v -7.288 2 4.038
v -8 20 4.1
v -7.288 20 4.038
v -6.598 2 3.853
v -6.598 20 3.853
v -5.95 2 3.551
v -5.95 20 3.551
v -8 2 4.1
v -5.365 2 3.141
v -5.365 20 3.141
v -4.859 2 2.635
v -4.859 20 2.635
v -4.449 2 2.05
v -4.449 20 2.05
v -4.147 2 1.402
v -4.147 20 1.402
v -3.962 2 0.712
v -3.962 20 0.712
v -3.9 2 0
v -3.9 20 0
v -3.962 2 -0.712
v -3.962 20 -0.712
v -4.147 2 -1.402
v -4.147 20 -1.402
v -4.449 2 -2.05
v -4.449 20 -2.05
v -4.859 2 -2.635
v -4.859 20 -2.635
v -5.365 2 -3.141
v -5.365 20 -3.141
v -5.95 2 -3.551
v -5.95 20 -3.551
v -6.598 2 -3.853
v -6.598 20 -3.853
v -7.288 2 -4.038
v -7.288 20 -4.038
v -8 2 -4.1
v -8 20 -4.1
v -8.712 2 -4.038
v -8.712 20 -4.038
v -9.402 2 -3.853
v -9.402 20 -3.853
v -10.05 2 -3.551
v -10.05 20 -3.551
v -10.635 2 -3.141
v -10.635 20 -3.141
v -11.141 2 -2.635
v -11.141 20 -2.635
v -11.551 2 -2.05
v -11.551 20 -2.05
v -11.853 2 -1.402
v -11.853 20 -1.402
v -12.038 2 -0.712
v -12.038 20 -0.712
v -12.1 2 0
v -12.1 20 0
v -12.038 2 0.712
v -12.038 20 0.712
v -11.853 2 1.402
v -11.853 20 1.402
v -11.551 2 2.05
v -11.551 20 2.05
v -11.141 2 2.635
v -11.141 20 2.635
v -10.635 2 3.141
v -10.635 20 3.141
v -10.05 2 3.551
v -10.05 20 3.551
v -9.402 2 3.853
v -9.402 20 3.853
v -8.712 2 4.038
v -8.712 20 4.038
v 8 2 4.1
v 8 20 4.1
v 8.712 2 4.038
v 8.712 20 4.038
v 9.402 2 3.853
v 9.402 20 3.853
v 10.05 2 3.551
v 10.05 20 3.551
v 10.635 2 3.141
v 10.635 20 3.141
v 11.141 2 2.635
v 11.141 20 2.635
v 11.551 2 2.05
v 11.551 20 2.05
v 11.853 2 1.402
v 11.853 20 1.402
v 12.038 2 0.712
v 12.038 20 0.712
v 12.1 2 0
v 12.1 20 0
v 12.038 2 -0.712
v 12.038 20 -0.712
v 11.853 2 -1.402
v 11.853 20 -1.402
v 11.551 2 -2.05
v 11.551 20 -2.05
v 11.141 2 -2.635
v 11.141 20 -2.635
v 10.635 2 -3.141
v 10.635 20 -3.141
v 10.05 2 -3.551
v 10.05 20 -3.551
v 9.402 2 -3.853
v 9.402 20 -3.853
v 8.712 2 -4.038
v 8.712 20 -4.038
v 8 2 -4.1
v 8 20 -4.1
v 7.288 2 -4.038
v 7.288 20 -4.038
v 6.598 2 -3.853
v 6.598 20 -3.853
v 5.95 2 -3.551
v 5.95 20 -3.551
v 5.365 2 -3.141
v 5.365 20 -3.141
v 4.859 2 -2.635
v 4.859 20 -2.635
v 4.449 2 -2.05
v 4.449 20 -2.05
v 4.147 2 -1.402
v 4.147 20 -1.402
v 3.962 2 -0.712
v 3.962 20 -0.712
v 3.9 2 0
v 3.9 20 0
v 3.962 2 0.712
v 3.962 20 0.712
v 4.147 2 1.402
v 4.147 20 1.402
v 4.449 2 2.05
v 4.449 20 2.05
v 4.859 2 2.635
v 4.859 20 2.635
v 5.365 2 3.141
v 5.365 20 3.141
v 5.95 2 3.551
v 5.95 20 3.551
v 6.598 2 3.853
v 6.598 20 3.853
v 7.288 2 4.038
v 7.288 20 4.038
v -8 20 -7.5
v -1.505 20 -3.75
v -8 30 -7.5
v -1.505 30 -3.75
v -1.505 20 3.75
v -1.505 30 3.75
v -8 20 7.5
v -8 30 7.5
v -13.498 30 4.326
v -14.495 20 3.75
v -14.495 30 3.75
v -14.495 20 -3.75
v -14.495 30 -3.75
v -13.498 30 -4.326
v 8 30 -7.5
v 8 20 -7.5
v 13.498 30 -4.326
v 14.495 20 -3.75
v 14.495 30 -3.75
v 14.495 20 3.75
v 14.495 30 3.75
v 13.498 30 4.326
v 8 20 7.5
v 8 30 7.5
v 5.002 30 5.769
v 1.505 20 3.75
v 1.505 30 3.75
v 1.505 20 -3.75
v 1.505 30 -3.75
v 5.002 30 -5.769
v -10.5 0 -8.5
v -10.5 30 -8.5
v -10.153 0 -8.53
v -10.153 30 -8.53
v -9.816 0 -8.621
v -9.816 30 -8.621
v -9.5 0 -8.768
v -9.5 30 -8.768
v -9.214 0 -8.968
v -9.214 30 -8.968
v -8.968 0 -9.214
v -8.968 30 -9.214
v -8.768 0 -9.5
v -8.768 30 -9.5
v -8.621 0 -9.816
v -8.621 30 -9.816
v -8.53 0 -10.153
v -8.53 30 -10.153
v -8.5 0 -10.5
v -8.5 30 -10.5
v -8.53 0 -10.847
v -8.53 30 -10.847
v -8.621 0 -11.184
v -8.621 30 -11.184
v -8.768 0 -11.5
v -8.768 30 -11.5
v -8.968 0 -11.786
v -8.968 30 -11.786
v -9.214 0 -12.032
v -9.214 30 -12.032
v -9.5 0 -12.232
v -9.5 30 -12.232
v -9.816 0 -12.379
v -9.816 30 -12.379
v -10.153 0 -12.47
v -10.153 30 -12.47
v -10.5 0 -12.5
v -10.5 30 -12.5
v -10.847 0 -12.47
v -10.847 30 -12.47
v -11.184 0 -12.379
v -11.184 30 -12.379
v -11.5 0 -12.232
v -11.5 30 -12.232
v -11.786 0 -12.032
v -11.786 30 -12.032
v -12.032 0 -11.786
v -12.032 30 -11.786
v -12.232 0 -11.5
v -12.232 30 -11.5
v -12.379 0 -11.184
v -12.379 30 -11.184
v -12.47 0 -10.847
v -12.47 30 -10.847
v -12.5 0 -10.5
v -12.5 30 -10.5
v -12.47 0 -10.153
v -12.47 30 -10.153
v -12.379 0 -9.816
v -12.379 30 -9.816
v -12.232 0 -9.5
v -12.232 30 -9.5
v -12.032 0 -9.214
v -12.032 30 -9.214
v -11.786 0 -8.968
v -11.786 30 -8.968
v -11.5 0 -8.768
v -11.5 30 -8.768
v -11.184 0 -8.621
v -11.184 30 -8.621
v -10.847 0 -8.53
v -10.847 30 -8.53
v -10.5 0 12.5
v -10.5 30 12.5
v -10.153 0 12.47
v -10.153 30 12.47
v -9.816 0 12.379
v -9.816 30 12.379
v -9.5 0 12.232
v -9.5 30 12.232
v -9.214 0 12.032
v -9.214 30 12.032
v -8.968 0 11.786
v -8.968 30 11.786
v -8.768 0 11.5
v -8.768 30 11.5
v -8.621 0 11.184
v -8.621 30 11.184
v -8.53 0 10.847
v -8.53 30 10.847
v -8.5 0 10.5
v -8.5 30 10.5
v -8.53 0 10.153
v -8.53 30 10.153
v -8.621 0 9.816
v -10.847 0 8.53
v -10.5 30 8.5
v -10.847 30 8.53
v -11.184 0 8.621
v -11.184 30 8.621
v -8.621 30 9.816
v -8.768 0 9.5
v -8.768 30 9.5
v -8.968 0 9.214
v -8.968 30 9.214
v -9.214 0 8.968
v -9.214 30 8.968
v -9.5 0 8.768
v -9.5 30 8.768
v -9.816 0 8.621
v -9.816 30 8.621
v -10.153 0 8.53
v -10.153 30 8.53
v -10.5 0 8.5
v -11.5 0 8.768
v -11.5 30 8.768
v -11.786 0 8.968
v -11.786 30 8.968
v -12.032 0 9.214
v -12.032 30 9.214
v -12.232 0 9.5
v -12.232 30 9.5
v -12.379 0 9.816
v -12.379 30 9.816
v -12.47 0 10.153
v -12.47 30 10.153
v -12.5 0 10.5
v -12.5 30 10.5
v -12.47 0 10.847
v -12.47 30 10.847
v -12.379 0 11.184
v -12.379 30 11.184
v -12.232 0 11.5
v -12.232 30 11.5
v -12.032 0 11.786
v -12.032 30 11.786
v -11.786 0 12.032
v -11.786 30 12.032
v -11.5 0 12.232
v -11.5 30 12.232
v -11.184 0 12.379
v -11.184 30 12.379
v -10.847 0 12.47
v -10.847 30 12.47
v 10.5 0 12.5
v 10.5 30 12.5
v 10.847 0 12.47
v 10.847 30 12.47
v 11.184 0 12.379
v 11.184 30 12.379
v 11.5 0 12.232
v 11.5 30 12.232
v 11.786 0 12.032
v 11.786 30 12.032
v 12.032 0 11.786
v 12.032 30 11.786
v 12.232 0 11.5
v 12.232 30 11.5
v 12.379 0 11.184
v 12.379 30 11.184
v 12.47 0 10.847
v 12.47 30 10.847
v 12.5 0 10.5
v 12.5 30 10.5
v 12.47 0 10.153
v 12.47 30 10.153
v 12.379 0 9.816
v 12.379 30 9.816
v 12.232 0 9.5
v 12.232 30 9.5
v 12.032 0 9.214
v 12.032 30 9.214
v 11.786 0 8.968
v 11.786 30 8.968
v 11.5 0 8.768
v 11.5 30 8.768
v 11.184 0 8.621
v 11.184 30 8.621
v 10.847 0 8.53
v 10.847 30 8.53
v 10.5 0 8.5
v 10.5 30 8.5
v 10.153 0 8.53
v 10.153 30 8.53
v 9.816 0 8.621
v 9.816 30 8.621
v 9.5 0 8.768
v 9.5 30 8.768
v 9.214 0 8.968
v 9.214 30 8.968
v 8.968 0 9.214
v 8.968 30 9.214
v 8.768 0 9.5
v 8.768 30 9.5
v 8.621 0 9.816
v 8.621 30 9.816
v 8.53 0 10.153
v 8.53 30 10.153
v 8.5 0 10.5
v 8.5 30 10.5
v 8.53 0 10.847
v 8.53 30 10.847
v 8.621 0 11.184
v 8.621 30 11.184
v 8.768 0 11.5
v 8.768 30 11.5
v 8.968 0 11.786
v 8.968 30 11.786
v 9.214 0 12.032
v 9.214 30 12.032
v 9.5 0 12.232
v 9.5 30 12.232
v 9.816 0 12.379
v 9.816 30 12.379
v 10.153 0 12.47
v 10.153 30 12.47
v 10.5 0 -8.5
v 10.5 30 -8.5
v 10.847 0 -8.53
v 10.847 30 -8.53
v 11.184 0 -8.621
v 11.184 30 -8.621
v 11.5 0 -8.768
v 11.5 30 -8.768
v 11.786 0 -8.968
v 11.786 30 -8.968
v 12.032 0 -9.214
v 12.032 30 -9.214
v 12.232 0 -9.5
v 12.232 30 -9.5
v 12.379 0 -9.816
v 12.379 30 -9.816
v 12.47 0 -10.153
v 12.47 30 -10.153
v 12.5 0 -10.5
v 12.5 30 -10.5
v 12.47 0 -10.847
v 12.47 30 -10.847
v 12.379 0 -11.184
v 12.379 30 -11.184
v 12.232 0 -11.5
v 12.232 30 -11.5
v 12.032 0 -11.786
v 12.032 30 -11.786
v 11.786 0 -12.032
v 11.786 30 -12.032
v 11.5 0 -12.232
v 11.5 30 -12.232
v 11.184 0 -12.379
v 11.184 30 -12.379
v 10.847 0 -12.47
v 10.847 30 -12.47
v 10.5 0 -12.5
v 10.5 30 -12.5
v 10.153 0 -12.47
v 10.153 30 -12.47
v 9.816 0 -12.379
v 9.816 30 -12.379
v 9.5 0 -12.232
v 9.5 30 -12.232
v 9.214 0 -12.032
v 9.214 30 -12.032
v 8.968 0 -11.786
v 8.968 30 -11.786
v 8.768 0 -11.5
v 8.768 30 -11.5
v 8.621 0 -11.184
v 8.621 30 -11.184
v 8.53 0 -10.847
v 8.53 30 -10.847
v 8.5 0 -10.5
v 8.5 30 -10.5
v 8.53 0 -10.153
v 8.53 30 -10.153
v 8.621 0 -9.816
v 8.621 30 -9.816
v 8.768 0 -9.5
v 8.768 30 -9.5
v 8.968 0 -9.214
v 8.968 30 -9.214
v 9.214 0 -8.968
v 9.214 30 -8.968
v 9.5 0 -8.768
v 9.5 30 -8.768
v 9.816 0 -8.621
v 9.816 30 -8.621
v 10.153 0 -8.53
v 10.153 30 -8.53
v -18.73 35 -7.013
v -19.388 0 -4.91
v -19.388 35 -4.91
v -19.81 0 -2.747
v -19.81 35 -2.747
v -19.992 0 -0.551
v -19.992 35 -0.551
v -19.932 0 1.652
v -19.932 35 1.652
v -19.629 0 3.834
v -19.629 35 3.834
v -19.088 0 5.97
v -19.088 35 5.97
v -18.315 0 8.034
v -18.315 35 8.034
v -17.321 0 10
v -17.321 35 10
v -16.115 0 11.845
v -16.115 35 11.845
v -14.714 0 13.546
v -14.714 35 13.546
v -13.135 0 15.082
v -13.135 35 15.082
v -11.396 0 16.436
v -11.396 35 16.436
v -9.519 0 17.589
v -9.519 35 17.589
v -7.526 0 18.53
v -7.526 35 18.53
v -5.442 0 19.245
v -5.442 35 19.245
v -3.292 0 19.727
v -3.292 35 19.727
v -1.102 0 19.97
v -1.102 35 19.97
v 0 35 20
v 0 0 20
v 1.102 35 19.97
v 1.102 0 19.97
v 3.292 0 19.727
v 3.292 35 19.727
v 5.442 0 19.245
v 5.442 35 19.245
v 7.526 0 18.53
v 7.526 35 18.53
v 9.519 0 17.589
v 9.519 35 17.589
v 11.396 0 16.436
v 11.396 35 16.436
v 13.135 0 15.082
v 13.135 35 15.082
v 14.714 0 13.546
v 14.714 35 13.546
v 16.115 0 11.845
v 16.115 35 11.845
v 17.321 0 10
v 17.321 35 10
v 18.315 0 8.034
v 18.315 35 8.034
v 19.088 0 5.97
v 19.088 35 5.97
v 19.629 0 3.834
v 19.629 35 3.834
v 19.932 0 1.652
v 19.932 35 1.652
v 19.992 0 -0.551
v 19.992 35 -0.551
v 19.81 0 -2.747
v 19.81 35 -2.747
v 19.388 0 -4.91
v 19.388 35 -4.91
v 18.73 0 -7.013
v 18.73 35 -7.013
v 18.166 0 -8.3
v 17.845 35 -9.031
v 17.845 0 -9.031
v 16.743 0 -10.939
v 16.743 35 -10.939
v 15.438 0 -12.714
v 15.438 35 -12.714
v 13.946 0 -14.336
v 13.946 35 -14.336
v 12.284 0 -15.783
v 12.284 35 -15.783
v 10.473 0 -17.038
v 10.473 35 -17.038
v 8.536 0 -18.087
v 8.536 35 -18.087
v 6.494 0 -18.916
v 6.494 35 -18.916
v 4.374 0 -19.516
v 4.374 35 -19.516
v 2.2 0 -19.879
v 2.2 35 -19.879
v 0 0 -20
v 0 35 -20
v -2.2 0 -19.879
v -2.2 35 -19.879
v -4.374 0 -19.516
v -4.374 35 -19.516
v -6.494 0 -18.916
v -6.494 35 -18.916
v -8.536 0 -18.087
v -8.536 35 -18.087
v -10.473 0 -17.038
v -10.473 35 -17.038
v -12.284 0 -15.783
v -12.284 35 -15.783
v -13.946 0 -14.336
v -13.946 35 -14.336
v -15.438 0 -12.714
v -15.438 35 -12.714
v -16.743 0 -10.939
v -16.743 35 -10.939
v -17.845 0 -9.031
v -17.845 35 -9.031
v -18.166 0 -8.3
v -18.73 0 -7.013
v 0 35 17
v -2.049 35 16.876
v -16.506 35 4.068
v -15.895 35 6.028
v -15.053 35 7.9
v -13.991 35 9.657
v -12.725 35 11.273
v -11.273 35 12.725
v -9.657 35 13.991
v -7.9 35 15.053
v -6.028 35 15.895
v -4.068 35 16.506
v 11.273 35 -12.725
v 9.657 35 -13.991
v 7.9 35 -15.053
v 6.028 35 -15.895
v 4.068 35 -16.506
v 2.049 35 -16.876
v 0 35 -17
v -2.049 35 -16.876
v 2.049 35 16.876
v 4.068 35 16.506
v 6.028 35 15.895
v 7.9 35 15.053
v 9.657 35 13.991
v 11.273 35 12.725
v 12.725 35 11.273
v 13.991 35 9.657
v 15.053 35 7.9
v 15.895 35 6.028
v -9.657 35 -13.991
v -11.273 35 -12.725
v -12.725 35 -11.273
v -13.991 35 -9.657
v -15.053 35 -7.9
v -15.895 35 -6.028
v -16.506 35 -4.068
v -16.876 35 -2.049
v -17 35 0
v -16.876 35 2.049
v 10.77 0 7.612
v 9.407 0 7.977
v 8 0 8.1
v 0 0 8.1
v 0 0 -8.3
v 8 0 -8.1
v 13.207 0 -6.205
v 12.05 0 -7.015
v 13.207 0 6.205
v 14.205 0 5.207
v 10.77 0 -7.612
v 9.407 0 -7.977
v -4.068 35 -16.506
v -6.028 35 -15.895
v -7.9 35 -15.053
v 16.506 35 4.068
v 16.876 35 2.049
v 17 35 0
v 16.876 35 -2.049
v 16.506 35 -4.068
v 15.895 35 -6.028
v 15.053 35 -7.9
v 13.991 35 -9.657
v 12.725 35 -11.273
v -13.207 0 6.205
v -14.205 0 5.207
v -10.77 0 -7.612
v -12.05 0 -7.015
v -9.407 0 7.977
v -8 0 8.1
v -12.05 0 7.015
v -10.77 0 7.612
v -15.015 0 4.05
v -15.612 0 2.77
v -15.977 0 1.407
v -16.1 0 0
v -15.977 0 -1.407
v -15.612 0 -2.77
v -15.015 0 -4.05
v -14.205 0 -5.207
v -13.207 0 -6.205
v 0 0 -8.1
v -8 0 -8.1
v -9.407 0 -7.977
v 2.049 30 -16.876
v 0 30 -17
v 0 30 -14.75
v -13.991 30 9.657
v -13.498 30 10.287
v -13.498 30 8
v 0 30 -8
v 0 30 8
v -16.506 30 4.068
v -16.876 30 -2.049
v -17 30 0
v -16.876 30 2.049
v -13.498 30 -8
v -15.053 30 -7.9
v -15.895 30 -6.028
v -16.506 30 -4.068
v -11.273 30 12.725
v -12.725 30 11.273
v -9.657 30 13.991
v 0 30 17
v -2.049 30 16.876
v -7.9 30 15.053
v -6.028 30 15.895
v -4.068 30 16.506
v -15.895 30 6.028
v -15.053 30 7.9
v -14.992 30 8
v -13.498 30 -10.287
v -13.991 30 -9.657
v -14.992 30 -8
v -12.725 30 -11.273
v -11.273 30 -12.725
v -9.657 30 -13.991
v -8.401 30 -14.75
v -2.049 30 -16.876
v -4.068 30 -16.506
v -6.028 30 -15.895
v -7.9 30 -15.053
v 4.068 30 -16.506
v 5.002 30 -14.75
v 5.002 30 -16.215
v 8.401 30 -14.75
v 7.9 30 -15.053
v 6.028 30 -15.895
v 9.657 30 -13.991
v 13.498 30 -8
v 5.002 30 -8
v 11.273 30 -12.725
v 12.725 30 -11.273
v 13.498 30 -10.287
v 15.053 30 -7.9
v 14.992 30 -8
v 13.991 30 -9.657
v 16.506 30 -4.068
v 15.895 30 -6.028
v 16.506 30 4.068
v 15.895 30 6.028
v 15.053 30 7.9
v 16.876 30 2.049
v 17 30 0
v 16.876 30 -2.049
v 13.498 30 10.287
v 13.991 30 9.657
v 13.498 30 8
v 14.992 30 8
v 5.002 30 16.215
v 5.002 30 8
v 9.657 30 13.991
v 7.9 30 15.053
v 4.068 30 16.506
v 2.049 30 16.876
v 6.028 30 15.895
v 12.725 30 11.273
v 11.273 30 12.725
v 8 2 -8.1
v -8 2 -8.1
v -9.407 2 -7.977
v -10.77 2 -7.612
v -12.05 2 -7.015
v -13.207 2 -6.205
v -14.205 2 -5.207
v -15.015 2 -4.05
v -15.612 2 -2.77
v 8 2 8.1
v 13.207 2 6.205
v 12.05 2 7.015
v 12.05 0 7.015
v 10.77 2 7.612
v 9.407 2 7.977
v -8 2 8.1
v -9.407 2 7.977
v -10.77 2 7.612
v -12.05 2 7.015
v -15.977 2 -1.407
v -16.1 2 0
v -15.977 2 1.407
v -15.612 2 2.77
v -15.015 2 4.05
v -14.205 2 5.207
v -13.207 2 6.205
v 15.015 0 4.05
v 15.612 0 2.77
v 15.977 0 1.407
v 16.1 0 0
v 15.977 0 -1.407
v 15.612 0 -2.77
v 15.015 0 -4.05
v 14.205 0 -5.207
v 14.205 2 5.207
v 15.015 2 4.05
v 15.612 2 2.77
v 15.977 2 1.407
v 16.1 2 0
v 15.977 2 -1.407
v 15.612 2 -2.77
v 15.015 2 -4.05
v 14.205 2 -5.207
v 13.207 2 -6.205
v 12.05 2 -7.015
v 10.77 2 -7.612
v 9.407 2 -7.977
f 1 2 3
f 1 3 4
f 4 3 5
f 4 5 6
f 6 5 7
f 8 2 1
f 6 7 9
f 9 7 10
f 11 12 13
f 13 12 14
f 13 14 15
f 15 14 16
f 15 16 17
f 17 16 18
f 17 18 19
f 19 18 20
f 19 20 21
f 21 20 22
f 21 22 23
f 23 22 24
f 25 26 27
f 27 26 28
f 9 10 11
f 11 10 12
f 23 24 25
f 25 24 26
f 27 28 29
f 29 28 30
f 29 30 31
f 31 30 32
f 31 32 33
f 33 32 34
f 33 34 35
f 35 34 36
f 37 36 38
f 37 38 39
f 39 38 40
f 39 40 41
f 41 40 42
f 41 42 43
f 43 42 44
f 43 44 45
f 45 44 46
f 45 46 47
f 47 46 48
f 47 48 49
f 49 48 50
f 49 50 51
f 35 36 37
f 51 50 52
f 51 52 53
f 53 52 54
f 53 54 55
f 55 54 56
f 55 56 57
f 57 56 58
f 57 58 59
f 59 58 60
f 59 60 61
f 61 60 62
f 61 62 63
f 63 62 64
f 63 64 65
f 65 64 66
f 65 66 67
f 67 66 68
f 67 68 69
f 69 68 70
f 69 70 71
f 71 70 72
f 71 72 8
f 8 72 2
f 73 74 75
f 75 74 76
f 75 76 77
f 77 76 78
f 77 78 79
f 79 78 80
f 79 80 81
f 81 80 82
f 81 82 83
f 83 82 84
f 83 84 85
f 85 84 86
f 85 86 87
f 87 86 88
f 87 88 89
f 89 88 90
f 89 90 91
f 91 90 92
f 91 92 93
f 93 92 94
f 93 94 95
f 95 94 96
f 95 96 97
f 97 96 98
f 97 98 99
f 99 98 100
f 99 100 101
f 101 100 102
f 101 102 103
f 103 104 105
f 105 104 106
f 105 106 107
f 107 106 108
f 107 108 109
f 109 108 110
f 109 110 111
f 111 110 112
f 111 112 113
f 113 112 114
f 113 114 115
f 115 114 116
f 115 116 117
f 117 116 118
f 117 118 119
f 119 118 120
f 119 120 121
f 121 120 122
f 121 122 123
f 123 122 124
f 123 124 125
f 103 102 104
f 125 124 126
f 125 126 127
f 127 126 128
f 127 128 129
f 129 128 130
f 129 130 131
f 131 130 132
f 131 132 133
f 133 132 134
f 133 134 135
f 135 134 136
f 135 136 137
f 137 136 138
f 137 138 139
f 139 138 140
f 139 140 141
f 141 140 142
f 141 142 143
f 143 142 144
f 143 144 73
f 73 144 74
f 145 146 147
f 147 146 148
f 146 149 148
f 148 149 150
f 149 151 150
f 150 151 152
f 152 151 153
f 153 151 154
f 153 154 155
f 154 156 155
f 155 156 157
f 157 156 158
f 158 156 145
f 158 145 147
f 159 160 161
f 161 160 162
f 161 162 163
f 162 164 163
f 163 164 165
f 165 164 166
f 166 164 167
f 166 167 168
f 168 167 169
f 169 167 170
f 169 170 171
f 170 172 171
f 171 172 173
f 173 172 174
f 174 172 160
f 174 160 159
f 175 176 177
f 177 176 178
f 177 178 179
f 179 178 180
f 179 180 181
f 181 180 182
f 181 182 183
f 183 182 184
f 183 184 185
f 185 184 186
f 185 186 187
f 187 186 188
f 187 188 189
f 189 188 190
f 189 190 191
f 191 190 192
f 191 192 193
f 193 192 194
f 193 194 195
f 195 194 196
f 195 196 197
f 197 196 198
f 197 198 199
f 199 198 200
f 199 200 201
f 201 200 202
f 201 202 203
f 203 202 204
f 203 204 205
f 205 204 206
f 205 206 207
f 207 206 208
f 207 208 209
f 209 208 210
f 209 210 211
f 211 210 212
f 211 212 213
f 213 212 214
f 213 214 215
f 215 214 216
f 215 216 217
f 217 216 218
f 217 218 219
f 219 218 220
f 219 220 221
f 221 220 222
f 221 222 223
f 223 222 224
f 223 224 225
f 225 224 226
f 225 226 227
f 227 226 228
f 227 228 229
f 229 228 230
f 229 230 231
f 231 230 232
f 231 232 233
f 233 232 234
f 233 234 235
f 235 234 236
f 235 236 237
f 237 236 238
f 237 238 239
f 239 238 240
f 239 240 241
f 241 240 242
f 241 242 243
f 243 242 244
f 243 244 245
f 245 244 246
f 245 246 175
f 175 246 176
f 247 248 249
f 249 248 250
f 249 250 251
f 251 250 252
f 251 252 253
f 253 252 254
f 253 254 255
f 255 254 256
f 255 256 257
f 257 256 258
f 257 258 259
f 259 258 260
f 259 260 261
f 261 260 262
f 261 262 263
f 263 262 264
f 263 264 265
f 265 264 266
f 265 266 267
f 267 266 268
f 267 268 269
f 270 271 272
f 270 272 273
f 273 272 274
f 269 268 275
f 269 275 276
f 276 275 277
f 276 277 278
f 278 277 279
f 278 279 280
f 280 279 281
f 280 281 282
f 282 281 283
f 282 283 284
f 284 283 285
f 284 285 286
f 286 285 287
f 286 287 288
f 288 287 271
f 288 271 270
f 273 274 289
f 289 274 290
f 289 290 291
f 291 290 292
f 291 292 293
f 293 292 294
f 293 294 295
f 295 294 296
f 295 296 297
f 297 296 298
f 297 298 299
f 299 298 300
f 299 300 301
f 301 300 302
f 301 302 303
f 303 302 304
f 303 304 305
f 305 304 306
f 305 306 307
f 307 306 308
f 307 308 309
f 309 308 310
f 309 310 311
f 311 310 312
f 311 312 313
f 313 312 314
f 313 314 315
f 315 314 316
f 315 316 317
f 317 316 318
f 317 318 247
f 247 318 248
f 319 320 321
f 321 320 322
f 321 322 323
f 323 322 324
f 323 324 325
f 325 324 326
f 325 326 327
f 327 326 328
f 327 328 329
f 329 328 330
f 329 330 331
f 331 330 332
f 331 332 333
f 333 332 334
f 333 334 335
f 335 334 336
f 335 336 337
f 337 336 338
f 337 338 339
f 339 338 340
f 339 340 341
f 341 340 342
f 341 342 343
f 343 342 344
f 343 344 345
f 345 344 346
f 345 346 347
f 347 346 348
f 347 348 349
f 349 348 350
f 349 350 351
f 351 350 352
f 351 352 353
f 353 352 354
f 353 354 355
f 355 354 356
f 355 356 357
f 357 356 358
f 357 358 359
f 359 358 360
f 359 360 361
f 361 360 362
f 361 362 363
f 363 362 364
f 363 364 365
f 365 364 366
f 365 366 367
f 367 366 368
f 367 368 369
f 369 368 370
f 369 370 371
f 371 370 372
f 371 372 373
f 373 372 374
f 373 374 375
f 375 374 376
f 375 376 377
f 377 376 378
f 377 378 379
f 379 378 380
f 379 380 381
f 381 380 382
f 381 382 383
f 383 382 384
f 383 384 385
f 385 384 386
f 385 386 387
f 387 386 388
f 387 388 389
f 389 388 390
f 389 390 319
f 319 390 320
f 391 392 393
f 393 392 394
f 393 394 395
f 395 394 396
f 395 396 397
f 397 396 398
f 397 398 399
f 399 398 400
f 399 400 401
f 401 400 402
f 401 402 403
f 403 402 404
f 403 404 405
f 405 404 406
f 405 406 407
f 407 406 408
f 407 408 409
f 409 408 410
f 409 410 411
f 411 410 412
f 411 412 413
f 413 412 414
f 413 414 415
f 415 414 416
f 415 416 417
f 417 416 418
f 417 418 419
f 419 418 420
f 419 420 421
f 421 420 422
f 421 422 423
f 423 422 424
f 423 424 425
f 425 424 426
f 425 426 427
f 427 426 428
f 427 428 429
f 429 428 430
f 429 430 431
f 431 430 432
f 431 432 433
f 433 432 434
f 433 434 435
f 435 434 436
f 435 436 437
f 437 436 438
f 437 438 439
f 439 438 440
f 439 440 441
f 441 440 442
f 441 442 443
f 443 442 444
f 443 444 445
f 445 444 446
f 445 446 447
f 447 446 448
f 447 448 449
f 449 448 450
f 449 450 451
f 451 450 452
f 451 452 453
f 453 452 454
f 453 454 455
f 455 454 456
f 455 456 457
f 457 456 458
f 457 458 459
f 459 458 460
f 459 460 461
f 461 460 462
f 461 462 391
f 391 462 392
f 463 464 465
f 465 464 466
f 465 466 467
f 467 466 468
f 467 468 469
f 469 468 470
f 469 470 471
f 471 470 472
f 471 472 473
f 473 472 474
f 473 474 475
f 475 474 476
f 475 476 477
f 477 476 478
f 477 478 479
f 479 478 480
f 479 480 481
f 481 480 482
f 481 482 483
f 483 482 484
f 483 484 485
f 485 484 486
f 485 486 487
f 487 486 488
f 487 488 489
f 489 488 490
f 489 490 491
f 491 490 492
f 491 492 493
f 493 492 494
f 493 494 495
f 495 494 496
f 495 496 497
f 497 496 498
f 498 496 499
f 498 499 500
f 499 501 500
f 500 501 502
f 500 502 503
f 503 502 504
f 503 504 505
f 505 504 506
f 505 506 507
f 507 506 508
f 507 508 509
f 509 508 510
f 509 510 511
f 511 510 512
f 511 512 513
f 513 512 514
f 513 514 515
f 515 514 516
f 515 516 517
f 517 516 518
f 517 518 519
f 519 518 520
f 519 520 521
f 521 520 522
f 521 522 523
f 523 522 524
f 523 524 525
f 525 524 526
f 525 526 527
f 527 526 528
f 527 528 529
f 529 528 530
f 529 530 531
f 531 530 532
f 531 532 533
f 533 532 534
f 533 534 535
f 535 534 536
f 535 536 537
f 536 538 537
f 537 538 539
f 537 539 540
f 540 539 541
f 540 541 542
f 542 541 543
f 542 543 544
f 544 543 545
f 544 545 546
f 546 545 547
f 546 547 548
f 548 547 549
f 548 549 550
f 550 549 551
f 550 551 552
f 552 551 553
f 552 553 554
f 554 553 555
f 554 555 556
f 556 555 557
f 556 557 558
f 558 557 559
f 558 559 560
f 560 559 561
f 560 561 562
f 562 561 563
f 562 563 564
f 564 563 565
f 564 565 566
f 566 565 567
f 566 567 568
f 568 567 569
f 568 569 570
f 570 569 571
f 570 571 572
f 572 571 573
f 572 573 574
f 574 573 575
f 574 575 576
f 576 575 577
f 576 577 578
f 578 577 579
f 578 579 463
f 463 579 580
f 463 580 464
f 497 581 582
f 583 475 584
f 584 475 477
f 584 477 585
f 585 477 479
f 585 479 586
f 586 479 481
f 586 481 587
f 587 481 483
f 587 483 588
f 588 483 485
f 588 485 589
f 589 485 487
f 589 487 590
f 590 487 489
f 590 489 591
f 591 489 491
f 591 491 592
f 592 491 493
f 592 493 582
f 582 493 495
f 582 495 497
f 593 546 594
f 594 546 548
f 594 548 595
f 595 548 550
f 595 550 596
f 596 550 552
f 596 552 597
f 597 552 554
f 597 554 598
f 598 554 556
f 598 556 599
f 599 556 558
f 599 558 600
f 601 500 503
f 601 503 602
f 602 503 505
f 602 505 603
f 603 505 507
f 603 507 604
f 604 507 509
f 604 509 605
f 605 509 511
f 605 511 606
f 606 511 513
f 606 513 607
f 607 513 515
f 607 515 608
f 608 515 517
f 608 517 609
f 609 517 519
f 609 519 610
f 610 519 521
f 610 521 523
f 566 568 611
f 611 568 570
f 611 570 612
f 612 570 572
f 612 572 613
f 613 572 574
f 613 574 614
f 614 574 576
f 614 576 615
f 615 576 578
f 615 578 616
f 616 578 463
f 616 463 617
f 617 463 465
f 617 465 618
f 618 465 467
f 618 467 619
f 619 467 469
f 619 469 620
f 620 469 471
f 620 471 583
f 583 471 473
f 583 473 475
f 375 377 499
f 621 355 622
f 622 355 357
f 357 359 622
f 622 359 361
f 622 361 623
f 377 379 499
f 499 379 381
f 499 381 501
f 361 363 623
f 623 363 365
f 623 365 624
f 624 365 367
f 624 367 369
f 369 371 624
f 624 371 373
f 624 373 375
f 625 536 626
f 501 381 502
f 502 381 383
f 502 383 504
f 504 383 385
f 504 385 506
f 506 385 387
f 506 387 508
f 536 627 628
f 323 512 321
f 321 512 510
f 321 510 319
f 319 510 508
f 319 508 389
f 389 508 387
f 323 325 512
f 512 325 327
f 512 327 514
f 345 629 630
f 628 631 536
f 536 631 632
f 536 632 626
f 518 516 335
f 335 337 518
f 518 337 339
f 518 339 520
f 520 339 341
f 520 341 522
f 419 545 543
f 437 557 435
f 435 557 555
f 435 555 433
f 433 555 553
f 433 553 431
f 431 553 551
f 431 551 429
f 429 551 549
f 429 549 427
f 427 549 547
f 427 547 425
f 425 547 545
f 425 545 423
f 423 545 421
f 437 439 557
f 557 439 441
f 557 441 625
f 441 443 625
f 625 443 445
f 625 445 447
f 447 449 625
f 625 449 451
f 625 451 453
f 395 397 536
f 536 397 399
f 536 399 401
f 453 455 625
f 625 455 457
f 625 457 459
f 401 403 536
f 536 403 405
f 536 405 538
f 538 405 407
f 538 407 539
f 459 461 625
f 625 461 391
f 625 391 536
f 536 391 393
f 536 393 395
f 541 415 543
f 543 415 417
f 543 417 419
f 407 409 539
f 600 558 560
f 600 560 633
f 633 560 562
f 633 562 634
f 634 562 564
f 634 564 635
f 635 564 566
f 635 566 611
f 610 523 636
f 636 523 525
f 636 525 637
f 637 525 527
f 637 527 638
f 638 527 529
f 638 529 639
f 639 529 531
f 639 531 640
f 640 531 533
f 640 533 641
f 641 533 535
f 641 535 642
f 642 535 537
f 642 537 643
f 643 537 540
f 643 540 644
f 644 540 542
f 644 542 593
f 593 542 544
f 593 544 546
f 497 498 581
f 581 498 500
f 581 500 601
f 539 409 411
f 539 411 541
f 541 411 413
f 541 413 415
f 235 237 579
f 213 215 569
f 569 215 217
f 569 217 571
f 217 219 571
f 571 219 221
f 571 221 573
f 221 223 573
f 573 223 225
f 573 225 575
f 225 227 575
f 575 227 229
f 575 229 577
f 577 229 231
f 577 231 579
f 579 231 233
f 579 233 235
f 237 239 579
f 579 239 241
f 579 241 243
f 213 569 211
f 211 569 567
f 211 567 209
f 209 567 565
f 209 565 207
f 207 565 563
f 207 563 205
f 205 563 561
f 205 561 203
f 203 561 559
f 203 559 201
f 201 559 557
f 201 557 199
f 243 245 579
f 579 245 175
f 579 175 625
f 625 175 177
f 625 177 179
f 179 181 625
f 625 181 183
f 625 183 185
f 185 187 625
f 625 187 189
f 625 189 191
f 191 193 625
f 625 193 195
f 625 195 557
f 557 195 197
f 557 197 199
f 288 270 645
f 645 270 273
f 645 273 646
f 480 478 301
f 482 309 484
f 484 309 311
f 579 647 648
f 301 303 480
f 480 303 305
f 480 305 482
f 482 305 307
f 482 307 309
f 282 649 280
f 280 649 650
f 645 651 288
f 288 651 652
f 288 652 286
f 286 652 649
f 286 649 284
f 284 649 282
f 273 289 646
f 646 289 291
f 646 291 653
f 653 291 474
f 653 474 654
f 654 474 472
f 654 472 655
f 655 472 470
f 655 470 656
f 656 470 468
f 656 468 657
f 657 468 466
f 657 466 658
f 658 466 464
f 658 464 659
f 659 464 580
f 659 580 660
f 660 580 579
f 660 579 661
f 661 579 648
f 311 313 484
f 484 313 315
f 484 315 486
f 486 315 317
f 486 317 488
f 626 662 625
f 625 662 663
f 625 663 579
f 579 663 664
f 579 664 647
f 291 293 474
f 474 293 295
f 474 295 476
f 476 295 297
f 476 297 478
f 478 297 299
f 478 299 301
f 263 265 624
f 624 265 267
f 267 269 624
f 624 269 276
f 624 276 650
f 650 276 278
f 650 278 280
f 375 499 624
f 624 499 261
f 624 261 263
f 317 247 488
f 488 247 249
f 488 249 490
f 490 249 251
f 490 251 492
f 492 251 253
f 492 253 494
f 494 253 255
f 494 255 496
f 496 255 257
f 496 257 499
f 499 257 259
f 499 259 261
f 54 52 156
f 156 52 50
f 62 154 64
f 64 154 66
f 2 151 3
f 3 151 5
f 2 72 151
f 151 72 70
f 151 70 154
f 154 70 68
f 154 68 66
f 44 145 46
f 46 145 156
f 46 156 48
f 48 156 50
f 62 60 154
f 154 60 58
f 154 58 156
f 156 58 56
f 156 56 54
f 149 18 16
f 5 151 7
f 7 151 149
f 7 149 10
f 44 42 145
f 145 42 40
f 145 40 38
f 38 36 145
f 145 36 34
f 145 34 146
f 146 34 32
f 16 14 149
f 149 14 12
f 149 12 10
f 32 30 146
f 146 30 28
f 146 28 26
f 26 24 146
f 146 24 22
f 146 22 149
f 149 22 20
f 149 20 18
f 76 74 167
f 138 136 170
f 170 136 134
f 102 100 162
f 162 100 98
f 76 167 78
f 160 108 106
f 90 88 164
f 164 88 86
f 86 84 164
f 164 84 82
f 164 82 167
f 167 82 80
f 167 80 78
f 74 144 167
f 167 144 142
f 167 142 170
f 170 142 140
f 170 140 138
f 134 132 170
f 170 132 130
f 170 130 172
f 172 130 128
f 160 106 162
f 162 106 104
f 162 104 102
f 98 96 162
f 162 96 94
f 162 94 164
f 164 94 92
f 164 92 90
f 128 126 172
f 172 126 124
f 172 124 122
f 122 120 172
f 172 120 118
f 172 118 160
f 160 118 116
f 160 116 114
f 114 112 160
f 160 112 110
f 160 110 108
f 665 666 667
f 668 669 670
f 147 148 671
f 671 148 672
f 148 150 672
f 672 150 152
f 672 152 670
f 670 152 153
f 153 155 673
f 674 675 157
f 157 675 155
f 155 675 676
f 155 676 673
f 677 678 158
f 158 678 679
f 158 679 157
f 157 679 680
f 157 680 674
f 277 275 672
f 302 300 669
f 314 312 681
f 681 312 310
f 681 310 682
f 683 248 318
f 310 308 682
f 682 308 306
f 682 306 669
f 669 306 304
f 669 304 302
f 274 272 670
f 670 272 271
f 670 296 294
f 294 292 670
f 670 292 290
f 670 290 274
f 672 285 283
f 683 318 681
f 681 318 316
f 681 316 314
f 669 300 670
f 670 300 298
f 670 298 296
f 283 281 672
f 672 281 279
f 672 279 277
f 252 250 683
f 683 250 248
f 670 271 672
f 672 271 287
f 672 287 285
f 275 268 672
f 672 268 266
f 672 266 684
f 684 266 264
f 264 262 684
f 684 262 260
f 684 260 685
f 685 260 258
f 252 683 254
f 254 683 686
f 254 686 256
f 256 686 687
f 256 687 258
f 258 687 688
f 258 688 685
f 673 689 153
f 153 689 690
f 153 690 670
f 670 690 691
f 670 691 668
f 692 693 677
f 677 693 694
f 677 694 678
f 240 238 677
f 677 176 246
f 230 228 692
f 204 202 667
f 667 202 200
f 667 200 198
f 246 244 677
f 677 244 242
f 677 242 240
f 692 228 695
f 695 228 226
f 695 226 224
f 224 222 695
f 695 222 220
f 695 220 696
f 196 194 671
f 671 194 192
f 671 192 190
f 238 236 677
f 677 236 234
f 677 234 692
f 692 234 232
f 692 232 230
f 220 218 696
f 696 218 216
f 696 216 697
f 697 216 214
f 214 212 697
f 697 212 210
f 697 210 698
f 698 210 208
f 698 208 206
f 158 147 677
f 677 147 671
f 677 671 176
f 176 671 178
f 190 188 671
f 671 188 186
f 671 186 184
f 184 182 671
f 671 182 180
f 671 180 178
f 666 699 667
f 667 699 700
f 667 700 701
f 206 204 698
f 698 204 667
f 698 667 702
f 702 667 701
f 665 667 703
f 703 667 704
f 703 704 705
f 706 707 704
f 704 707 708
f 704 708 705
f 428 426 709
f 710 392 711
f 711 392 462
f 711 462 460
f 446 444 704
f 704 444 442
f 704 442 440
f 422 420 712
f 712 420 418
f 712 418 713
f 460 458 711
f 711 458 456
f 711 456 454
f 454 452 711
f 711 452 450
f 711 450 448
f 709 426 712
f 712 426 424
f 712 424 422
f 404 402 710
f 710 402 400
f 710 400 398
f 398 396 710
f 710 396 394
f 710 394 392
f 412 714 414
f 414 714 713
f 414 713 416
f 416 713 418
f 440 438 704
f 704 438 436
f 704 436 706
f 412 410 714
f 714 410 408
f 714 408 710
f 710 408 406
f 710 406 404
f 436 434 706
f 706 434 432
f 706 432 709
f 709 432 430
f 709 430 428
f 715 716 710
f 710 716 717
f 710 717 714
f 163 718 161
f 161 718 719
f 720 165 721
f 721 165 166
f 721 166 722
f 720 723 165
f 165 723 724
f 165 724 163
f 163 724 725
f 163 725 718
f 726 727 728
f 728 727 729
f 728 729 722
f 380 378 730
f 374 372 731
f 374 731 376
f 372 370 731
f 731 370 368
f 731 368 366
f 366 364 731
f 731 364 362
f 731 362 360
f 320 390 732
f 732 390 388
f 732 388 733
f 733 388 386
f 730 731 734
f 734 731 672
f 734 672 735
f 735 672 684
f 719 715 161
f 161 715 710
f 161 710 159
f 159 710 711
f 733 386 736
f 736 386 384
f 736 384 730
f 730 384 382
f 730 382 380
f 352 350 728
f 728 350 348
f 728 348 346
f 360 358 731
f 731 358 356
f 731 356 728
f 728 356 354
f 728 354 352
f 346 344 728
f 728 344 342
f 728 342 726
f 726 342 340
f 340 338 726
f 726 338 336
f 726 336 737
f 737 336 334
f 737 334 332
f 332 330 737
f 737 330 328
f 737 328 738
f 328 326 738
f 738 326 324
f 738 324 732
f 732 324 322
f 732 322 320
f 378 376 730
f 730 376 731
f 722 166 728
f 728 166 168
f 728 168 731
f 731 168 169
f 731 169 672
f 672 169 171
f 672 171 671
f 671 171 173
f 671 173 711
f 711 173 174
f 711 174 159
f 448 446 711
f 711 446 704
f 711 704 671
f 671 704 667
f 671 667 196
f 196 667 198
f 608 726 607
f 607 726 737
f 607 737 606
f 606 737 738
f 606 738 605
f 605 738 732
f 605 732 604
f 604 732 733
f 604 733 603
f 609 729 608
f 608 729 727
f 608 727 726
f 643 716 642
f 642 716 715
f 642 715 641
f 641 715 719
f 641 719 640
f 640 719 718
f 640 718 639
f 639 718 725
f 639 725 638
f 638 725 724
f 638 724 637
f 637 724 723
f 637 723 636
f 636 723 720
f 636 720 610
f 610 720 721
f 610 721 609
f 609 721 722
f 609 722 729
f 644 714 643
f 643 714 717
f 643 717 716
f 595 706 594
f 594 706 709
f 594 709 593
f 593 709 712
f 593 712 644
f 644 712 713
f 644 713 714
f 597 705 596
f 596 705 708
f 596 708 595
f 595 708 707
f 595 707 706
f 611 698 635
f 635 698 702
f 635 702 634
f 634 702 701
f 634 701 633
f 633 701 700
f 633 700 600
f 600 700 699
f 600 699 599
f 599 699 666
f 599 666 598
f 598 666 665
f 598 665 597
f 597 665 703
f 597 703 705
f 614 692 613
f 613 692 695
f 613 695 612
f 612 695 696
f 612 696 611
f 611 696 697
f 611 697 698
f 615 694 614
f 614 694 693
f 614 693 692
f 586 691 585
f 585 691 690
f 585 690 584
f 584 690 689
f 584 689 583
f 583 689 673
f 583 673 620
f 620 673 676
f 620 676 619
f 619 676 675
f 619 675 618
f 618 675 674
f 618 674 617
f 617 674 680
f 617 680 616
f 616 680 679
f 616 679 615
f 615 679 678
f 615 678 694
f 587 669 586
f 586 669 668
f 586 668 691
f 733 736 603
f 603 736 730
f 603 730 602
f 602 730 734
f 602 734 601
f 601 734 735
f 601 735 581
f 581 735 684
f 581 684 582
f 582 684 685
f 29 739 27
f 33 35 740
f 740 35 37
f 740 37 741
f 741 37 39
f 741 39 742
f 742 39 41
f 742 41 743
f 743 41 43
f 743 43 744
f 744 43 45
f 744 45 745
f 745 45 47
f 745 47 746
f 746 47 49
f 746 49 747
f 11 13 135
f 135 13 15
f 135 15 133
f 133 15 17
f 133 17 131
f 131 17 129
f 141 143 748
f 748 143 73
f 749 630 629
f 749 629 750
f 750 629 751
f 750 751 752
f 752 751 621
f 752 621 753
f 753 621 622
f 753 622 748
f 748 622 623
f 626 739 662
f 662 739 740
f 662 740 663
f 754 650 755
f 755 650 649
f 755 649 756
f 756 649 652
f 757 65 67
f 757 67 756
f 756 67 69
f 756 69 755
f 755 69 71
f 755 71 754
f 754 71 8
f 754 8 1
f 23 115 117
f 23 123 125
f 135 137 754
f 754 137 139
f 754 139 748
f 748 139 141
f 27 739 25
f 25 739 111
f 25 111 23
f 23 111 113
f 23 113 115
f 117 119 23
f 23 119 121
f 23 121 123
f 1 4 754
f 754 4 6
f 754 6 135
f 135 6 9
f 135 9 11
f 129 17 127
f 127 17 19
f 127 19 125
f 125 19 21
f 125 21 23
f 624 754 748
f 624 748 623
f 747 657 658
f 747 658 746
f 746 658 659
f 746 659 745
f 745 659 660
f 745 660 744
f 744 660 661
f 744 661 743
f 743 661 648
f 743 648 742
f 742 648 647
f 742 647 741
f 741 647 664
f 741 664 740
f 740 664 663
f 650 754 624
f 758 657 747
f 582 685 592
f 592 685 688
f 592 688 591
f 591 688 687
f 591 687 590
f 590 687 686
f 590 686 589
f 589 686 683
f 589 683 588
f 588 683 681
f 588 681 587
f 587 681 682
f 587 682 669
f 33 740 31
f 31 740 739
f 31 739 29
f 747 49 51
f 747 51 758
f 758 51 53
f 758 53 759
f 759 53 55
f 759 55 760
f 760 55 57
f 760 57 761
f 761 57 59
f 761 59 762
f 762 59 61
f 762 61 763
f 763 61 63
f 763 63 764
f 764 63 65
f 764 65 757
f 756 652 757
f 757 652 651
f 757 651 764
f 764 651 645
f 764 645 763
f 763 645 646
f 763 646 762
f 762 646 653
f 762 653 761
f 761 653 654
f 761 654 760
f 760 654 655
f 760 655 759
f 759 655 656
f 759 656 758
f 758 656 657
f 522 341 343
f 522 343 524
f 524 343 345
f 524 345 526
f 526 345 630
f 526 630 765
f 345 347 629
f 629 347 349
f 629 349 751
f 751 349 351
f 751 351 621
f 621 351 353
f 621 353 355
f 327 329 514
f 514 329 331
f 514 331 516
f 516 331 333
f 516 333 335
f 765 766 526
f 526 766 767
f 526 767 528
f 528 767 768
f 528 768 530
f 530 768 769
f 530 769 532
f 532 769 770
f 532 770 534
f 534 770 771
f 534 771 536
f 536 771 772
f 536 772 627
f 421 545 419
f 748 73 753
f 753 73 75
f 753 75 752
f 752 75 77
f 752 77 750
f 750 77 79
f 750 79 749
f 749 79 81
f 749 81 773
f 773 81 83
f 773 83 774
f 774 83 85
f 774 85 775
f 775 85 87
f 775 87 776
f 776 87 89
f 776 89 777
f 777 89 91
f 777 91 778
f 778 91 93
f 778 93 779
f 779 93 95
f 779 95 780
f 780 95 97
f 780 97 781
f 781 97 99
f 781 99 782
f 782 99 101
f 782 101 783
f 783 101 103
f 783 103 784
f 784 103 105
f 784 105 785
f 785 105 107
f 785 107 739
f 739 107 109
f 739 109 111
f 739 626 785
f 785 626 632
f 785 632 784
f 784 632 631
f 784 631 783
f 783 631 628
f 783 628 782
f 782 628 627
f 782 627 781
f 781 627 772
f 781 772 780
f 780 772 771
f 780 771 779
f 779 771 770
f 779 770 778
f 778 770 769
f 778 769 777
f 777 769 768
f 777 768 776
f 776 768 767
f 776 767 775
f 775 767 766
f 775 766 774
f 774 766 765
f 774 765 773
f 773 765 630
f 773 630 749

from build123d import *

# Parameters (mm, degrees)
SKETCH1_R           = 20
BOSS_EXTRUDE1_DEPTH = 35
CUT_EXTRUDE1_DEPTH  = 15
SKETCH3_R           = 4.1
CUT_EXTRUDE2_DEPTH  = 21
SKETCH4_R           = 2
CUT_EXTRUDE3_DEPTH  = 36
SKETCH5_R           = 17
CUT_EXTRUDE4_DEPTH  = 5
CUT_EXTRUDE5_DEPTH  = 2


with BuildPart() as part:
    # Sketch1 → Boss-Extrude1 (new body)
    with BuildSketch(Plane(origin=(0, 0, 0), x_dir=(1, 0, 0), z_dir=(0, 1, 0))):
        Circle(SKETCH1_R)
    extrude(amount=BOSS_EXTRUDE1_DEPTH)

    # Sketch2 → Cut-Extrude1 (cut)
    with BuildSketch(Plane(origin=(0, 35, 0), x_dir=(1, 0, 0), z_dir=(0, 1, 0))):
        Polygon((-8, 7.5), (-14.495190528, 3.75), (-14.495190528, -3.75), (-8, -7.5), (-1.504809472, -3.75), (-1.504809472, 3.75), align=None)
        Polygon((8, 7.5), (1.504809472, 3.75), (1.504809472, -3.75), (8, -7.5), (14.495190528, -3.75), (14.495190528, 3.75), align=None)
    extrude(amount=-CUT_EXTRUDE1_DEPTH, mode=Mode.SUBTRACT)

    # Sketch3 → Cut-Extrude2 (cut, through all)
    with BuildSketch(Plane(origin=(0, 20, 0), x_dir=(1, 0, 0), z_dir=(0, 1, 0))):
        with Locations((-8, 0)):
            Circle(SKETCH3_R)
        with Locations((8, 0)):
            Circle(SKETCH3_R)
    extrude(amount=-CUT_EXTRUDE2_DEPTH, mode=Mode.SUBTRACT)

    # Sketch4 → Cut-Extrude3 (cut, through all)
    with BuildSketch(Plane(origin=(0, 35, 0), x_dir=(1, 0, 0), z_dir=(0, 1, 0))):
        with Locations((-10.5, 10.5)):
            Circle(SKETCH4_R)
        with Locations((10.5, 10.5)):
            Circle(SKETCH4_R)
        with Locations((10.5, -10.5)):
            Circle(SKETCH4_R)
        with Locations((-10.5, -10.5)):
            Circle(SKETCH4_R)
    extrude(amount=-CUT_EXTRUDE3_DEPTH, mode=Mode.SUBTRACT)

    # Sketch5 → Cut-Extrude4 (cut)
    with BuildSketch(Plane(origin=(0, 35, 0), x_dir=(1, 0, 0), z_dir=(0, 1, 0))):
        Circle(SKETCH5_R)
    extrude(amount=-CUT_EXTRUDE4_DEPTH, mode=Mode.SUBTRACT)

    # Sketch6 → Cut-Extrude5 (cut)
    with BuildSketch(Plane.XZ):
        with BuildLine():
            Line((8, -8.1), (-8, -8.1))
            ThreePointArc((-8, -8.1), (-16.1, 0), (-8, 8.1))
            Line((-8, 8.1), (8, 8.1))
            ThreePointArc((8, 8.1), (16.1, 0), (8, -8.1))
        make_face()
    extrude(amount=-CUT_EXTRUDE5_DEPTH, mode=Mode.SUBTRACT)


solid = part.part
